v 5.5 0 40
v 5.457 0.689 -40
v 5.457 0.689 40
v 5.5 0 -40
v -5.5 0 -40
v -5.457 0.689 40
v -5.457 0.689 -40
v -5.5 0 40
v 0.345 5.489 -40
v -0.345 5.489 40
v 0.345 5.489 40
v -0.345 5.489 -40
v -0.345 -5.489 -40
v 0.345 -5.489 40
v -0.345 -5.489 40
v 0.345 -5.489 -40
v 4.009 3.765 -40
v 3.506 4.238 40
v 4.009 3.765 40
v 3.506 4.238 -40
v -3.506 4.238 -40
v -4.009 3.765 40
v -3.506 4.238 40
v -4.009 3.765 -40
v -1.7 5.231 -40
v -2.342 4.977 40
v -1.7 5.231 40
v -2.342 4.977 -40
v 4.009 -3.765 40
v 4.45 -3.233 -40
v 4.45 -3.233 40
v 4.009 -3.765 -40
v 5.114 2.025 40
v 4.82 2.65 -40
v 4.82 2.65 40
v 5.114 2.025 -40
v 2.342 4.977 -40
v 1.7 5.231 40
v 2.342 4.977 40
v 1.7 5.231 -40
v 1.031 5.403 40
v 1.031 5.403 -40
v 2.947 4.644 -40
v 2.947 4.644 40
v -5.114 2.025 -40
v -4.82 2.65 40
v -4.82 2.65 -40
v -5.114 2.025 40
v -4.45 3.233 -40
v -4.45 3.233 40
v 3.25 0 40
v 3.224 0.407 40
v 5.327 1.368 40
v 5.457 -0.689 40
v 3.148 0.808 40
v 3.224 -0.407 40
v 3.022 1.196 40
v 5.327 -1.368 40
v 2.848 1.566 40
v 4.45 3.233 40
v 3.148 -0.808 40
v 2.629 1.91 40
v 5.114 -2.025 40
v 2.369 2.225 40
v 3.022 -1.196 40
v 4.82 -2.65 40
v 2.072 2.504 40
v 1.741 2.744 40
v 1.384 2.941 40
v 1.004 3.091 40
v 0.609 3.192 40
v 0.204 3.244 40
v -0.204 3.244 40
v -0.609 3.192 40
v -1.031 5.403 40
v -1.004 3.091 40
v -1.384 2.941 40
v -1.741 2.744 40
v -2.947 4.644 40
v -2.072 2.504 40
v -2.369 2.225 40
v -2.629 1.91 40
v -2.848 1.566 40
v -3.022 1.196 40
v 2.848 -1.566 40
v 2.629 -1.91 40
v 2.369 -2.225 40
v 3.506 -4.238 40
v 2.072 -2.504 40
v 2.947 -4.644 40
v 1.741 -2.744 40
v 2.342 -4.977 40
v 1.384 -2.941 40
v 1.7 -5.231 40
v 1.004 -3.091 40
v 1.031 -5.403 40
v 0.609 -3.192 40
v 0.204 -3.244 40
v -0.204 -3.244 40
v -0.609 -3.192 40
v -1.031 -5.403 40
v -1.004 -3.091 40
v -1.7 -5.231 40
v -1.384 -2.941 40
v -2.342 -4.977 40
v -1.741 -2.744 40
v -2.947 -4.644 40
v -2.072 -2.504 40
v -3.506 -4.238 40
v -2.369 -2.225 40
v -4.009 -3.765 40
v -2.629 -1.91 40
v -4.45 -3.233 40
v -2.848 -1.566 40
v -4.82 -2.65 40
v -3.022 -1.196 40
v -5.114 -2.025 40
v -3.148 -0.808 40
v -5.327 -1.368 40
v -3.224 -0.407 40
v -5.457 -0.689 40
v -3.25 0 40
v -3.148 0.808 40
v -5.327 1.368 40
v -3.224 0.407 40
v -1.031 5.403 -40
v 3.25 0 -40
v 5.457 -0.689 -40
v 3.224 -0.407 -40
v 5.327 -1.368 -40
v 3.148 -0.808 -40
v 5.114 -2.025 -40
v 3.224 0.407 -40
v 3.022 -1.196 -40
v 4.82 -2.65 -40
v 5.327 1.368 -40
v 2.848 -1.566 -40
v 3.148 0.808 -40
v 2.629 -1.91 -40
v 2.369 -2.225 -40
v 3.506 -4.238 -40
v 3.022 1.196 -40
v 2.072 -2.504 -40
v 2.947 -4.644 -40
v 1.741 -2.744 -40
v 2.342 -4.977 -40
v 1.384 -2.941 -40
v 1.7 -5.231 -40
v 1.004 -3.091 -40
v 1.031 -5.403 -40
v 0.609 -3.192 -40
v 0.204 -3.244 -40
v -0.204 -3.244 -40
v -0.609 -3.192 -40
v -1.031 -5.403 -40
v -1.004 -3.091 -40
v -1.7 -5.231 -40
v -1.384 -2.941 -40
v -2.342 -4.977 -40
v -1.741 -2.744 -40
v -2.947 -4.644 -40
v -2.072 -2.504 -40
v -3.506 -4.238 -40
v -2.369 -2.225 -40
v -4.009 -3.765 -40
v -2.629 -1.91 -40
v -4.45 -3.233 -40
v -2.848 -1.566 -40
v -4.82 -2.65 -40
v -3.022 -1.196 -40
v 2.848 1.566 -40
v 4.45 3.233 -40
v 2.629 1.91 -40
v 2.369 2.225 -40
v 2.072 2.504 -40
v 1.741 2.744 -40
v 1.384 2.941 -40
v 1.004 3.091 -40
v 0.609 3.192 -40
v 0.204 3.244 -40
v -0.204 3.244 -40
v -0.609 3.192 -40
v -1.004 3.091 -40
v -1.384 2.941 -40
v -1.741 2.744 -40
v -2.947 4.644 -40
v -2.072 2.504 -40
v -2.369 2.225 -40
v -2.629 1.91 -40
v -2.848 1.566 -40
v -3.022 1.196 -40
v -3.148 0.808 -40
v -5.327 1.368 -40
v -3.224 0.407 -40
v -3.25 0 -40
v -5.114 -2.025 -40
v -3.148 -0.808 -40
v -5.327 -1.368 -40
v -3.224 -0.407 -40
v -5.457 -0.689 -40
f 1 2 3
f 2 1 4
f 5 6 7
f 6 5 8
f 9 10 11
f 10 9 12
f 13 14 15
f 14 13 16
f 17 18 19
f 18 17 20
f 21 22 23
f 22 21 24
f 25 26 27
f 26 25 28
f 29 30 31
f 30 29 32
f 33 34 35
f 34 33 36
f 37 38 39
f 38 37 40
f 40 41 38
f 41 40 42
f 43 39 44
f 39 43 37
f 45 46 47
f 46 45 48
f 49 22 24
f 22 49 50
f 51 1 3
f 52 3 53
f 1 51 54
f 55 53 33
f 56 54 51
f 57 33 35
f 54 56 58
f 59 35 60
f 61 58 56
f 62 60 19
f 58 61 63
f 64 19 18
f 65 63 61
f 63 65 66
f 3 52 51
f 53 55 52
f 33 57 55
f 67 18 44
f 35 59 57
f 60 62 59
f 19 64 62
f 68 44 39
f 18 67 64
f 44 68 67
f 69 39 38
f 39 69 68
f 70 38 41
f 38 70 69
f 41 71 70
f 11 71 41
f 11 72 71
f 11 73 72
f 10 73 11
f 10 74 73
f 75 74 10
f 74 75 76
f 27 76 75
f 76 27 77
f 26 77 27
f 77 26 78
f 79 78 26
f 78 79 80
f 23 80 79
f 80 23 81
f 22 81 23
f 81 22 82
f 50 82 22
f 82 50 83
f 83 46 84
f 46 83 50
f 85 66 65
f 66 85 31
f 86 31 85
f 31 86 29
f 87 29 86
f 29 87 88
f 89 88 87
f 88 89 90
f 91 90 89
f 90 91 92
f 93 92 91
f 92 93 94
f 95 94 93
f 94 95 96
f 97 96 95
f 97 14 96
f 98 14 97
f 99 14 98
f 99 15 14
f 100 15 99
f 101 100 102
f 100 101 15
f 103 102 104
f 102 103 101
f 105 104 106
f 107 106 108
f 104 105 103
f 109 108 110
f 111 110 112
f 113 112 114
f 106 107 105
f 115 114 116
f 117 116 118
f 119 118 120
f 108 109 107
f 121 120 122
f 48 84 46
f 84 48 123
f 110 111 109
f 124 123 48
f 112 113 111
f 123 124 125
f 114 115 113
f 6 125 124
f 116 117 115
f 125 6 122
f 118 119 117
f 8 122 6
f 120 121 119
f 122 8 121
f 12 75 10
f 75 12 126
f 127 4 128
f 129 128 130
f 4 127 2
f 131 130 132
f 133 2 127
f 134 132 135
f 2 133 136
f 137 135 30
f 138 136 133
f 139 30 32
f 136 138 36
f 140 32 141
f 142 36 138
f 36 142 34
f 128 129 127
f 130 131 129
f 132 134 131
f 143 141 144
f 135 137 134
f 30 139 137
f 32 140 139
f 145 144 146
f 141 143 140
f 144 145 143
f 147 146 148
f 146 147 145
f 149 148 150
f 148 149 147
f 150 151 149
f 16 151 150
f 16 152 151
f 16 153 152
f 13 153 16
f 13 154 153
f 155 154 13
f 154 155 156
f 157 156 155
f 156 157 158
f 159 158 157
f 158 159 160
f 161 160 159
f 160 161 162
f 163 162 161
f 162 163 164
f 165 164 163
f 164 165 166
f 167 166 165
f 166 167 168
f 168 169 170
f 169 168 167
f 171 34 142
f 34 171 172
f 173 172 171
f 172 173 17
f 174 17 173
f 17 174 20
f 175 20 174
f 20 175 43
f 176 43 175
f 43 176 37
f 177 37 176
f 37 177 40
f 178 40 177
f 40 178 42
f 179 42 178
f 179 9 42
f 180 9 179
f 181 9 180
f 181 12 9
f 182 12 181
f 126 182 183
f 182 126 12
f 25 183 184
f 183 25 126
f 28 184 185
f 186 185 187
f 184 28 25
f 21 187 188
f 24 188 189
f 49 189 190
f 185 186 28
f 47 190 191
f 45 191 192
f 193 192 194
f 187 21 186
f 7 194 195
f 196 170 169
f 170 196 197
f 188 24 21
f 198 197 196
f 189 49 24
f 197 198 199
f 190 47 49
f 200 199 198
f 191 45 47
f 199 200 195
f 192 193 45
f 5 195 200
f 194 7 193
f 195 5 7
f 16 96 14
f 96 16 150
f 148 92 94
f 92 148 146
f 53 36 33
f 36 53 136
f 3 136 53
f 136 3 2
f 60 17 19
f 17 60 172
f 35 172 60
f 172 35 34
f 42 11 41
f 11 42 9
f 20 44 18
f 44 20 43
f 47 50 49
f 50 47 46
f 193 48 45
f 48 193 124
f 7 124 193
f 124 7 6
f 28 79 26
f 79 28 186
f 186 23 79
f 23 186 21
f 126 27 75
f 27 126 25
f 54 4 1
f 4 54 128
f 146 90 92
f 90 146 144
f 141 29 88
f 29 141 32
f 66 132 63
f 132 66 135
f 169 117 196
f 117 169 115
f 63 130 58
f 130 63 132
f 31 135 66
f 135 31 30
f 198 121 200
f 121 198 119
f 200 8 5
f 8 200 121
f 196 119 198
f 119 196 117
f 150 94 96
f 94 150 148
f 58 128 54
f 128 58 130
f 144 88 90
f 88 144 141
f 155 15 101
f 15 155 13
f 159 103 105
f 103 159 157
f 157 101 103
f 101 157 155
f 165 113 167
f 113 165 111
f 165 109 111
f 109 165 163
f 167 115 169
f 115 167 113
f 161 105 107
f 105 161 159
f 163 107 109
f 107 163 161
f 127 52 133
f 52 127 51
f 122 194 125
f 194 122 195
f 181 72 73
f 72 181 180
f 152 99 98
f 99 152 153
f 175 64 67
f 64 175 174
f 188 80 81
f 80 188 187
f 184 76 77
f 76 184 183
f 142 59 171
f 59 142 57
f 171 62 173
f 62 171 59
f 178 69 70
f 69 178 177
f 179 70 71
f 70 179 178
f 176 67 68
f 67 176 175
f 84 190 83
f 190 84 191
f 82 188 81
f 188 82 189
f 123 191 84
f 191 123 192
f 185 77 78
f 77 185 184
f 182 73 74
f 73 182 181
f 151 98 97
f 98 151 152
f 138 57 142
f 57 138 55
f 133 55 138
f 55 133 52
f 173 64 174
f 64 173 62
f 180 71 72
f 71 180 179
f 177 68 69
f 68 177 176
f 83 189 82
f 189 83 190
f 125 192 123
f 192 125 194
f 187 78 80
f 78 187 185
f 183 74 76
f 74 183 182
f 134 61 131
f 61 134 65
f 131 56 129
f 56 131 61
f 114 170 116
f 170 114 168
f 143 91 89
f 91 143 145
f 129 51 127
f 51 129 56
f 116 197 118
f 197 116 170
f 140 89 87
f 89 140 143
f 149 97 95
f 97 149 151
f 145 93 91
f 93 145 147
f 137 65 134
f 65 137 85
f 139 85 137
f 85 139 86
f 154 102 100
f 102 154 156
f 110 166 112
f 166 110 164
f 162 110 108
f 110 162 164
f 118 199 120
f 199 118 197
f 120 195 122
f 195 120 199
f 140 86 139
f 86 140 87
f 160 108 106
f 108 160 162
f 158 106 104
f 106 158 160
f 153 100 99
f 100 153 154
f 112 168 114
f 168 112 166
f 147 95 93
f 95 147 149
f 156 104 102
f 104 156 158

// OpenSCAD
$fn = 50;


difference() {
	union() {
		translate(v = [0, 0, -40.0000000000]) {
			cylinder(h = 80, r = 5.5000000000);
		}
	}
	union() {
		translate(v = [0, 0, -100.0000000000]) {
			cylinder(h = 200, r = 3.2500000000);
		}
	}
}
